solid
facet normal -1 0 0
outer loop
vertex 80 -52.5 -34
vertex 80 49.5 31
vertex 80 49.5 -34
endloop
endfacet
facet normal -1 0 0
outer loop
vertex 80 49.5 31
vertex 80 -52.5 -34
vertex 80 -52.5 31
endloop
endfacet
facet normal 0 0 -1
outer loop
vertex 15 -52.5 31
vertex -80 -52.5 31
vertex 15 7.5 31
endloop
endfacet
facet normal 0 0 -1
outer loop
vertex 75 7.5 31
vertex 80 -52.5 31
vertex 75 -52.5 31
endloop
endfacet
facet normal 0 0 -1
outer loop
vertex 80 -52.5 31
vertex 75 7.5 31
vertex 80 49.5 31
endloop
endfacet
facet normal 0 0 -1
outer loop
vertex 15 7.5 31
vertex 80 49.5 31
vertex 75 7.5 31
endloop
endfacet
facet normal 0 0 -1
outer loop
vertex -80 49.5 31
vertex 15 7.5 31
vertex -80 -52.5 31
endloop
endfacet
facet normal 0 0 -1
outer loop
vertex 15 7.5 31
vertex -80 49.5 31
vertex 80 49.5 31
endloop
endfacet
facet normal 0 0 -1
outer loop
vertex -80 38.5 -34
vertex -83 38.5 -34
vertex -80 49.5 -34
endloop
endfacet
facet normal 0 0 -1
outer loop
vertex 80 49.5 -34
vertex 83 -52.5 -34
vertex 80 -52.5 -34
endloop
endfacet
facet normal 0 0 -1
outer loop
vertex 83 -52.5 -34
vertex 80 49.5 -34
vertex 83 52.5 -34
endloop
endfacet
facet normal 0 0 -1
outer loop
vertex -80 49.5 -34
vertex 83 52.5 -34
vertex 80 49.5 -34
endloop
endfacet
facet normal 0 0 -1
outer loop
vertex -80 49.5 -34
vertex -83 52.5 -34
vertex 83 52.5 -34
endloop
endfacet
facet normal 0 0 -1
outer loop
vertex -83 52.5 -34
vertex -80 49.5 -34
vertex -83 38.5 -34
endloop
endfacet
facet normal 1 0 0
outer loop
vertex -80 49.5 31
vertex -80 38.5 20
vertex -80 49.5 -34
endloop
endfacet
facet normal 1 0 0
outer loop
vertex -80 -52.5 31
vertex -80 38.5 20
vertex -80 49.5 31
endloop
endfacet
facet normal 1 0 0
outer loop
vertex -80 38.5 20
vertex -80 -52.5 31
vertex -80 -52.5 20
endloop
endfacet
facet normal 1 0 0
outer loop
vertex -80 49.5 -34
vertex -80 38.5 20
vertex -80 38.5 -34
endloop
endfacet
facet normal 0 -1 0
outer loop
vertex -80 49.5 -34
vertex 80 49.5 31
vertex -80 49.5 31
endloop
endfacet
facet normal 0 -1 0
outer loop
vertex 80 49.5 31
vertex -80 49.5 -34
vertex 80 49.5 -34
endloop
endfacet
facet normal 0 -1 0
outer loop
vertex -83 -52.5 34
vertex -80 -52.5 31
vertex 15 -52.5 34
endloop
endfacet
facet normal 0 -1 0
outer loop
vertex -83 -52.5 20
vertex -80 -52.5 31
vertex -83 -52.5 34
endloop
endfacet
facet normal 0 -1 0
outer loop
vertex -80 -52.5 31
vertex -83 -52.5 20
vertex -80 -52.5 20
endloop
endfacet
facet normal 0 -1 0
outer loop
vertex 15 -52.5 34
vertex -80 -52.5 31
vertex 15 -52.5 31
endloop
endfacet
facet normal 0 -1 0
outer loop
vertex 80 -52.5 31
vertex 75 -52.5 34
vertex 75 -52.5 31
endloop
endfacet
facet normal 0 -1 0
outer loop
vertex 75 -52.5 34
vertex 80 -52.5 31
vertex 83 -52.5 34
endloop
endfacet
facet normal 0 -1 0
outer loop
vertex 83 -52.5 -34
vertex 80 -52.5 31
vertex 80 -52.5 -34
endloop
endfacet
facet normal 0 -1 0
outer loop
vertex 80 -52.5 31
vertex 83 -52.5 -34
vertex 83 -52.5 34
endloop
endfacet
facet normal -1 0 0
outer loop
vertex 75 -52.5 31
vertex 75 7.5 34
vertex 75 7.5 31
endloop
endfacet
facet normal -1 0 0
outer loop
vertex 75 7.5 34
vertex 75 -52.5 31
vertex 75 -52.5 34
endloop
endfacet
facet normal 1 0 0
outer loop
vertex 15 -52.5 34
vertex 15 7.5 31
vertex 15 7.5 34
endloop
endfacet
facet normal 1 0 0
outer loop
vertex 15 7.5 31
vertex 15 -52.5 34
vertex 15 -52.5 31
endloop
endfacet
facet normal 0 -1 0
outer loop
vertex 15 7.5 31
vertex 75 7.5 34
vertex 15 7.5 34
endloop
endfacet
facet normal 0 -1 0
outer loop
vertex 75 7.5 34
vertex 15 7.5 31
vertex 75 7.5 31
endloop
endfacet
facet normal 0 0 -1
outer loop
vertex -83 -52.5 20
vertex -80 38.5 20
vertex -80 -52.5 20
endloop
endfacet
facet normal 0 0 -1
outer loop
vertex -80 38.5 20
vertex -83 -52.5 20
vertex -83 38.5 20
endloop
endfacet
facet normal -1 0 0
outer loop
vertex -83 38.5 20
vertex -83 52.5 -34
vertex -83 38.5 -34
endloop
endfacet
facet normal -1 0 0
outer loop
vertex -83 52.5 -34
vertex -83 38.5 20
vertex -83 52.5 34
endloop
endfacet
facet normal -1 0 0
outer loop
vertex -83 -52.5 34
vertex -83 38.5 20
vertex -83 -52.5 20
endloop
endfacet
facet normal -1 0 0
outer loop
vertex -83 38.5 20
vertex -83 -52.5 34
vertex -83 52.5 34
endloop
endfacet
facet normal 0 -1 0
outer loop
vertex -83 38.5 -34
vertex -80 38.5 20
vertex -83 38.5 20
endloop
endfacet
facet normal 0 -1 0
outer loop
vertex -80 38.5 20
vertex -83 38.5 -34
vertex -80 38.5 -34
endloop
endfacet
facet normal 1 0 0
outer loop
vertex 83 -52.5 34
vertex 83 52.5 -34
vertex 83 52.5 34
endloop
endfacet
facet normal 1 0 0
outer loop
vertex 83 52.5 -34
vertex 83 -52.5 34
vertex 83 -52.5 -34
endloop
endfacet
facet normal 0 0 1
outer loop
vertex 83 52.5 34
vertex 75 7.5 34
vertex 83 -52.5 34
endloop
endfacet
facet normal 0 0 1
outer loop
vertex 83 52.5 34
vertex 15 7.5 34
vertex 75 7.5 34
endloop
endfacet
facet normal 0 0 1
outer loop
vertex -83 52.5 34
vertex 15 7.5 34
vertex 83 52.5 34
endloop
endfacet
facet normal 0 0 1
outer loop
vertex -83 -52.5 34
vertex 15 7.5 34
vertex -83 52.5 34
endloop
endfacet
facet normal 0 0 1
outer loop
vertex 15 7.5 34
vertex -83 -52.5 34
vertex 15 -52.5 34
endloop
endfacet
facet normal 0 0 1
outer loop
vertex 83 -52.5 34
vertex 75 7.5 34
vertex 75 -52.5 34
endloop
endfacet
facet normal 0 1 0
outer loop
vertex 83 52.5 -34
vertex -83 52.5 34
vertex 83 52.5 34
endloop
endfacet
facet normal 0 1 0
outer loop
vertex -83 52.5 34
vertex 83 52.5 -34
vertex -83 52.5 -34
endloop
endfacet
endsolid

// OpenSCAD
wall_mm=3;
l=160;
w=102;
h=65;

cube_side=60;

module cover_body(){
    cube([l+wall_mm*2,w+wall_mm,h+wall_mm], center=true);
}

module cover_internal(){
    union(){
        // internal space
        translate([0,-wall_mm/2,-wall_mm/2]) cube([l,w,h], center=true);
        
        // objective port
        translate([(l/2)-(cube_side/2)-5,-((w/2)-(cube_side/2)+wall_mm/2),20])
            cube([cube_side,cube_side,cube_side], center=true);
        
        // side port
        translate([-((l/2)-(cube_side/2)+wall_mm),-(wall_mm/2+11),-(wall_mm/2+11)])
            cube([cube_side,w,h], center=true);
    }
}

module cover(){
    difference(){
        cover_body();
        cover_internal();
    }
}

cover();
